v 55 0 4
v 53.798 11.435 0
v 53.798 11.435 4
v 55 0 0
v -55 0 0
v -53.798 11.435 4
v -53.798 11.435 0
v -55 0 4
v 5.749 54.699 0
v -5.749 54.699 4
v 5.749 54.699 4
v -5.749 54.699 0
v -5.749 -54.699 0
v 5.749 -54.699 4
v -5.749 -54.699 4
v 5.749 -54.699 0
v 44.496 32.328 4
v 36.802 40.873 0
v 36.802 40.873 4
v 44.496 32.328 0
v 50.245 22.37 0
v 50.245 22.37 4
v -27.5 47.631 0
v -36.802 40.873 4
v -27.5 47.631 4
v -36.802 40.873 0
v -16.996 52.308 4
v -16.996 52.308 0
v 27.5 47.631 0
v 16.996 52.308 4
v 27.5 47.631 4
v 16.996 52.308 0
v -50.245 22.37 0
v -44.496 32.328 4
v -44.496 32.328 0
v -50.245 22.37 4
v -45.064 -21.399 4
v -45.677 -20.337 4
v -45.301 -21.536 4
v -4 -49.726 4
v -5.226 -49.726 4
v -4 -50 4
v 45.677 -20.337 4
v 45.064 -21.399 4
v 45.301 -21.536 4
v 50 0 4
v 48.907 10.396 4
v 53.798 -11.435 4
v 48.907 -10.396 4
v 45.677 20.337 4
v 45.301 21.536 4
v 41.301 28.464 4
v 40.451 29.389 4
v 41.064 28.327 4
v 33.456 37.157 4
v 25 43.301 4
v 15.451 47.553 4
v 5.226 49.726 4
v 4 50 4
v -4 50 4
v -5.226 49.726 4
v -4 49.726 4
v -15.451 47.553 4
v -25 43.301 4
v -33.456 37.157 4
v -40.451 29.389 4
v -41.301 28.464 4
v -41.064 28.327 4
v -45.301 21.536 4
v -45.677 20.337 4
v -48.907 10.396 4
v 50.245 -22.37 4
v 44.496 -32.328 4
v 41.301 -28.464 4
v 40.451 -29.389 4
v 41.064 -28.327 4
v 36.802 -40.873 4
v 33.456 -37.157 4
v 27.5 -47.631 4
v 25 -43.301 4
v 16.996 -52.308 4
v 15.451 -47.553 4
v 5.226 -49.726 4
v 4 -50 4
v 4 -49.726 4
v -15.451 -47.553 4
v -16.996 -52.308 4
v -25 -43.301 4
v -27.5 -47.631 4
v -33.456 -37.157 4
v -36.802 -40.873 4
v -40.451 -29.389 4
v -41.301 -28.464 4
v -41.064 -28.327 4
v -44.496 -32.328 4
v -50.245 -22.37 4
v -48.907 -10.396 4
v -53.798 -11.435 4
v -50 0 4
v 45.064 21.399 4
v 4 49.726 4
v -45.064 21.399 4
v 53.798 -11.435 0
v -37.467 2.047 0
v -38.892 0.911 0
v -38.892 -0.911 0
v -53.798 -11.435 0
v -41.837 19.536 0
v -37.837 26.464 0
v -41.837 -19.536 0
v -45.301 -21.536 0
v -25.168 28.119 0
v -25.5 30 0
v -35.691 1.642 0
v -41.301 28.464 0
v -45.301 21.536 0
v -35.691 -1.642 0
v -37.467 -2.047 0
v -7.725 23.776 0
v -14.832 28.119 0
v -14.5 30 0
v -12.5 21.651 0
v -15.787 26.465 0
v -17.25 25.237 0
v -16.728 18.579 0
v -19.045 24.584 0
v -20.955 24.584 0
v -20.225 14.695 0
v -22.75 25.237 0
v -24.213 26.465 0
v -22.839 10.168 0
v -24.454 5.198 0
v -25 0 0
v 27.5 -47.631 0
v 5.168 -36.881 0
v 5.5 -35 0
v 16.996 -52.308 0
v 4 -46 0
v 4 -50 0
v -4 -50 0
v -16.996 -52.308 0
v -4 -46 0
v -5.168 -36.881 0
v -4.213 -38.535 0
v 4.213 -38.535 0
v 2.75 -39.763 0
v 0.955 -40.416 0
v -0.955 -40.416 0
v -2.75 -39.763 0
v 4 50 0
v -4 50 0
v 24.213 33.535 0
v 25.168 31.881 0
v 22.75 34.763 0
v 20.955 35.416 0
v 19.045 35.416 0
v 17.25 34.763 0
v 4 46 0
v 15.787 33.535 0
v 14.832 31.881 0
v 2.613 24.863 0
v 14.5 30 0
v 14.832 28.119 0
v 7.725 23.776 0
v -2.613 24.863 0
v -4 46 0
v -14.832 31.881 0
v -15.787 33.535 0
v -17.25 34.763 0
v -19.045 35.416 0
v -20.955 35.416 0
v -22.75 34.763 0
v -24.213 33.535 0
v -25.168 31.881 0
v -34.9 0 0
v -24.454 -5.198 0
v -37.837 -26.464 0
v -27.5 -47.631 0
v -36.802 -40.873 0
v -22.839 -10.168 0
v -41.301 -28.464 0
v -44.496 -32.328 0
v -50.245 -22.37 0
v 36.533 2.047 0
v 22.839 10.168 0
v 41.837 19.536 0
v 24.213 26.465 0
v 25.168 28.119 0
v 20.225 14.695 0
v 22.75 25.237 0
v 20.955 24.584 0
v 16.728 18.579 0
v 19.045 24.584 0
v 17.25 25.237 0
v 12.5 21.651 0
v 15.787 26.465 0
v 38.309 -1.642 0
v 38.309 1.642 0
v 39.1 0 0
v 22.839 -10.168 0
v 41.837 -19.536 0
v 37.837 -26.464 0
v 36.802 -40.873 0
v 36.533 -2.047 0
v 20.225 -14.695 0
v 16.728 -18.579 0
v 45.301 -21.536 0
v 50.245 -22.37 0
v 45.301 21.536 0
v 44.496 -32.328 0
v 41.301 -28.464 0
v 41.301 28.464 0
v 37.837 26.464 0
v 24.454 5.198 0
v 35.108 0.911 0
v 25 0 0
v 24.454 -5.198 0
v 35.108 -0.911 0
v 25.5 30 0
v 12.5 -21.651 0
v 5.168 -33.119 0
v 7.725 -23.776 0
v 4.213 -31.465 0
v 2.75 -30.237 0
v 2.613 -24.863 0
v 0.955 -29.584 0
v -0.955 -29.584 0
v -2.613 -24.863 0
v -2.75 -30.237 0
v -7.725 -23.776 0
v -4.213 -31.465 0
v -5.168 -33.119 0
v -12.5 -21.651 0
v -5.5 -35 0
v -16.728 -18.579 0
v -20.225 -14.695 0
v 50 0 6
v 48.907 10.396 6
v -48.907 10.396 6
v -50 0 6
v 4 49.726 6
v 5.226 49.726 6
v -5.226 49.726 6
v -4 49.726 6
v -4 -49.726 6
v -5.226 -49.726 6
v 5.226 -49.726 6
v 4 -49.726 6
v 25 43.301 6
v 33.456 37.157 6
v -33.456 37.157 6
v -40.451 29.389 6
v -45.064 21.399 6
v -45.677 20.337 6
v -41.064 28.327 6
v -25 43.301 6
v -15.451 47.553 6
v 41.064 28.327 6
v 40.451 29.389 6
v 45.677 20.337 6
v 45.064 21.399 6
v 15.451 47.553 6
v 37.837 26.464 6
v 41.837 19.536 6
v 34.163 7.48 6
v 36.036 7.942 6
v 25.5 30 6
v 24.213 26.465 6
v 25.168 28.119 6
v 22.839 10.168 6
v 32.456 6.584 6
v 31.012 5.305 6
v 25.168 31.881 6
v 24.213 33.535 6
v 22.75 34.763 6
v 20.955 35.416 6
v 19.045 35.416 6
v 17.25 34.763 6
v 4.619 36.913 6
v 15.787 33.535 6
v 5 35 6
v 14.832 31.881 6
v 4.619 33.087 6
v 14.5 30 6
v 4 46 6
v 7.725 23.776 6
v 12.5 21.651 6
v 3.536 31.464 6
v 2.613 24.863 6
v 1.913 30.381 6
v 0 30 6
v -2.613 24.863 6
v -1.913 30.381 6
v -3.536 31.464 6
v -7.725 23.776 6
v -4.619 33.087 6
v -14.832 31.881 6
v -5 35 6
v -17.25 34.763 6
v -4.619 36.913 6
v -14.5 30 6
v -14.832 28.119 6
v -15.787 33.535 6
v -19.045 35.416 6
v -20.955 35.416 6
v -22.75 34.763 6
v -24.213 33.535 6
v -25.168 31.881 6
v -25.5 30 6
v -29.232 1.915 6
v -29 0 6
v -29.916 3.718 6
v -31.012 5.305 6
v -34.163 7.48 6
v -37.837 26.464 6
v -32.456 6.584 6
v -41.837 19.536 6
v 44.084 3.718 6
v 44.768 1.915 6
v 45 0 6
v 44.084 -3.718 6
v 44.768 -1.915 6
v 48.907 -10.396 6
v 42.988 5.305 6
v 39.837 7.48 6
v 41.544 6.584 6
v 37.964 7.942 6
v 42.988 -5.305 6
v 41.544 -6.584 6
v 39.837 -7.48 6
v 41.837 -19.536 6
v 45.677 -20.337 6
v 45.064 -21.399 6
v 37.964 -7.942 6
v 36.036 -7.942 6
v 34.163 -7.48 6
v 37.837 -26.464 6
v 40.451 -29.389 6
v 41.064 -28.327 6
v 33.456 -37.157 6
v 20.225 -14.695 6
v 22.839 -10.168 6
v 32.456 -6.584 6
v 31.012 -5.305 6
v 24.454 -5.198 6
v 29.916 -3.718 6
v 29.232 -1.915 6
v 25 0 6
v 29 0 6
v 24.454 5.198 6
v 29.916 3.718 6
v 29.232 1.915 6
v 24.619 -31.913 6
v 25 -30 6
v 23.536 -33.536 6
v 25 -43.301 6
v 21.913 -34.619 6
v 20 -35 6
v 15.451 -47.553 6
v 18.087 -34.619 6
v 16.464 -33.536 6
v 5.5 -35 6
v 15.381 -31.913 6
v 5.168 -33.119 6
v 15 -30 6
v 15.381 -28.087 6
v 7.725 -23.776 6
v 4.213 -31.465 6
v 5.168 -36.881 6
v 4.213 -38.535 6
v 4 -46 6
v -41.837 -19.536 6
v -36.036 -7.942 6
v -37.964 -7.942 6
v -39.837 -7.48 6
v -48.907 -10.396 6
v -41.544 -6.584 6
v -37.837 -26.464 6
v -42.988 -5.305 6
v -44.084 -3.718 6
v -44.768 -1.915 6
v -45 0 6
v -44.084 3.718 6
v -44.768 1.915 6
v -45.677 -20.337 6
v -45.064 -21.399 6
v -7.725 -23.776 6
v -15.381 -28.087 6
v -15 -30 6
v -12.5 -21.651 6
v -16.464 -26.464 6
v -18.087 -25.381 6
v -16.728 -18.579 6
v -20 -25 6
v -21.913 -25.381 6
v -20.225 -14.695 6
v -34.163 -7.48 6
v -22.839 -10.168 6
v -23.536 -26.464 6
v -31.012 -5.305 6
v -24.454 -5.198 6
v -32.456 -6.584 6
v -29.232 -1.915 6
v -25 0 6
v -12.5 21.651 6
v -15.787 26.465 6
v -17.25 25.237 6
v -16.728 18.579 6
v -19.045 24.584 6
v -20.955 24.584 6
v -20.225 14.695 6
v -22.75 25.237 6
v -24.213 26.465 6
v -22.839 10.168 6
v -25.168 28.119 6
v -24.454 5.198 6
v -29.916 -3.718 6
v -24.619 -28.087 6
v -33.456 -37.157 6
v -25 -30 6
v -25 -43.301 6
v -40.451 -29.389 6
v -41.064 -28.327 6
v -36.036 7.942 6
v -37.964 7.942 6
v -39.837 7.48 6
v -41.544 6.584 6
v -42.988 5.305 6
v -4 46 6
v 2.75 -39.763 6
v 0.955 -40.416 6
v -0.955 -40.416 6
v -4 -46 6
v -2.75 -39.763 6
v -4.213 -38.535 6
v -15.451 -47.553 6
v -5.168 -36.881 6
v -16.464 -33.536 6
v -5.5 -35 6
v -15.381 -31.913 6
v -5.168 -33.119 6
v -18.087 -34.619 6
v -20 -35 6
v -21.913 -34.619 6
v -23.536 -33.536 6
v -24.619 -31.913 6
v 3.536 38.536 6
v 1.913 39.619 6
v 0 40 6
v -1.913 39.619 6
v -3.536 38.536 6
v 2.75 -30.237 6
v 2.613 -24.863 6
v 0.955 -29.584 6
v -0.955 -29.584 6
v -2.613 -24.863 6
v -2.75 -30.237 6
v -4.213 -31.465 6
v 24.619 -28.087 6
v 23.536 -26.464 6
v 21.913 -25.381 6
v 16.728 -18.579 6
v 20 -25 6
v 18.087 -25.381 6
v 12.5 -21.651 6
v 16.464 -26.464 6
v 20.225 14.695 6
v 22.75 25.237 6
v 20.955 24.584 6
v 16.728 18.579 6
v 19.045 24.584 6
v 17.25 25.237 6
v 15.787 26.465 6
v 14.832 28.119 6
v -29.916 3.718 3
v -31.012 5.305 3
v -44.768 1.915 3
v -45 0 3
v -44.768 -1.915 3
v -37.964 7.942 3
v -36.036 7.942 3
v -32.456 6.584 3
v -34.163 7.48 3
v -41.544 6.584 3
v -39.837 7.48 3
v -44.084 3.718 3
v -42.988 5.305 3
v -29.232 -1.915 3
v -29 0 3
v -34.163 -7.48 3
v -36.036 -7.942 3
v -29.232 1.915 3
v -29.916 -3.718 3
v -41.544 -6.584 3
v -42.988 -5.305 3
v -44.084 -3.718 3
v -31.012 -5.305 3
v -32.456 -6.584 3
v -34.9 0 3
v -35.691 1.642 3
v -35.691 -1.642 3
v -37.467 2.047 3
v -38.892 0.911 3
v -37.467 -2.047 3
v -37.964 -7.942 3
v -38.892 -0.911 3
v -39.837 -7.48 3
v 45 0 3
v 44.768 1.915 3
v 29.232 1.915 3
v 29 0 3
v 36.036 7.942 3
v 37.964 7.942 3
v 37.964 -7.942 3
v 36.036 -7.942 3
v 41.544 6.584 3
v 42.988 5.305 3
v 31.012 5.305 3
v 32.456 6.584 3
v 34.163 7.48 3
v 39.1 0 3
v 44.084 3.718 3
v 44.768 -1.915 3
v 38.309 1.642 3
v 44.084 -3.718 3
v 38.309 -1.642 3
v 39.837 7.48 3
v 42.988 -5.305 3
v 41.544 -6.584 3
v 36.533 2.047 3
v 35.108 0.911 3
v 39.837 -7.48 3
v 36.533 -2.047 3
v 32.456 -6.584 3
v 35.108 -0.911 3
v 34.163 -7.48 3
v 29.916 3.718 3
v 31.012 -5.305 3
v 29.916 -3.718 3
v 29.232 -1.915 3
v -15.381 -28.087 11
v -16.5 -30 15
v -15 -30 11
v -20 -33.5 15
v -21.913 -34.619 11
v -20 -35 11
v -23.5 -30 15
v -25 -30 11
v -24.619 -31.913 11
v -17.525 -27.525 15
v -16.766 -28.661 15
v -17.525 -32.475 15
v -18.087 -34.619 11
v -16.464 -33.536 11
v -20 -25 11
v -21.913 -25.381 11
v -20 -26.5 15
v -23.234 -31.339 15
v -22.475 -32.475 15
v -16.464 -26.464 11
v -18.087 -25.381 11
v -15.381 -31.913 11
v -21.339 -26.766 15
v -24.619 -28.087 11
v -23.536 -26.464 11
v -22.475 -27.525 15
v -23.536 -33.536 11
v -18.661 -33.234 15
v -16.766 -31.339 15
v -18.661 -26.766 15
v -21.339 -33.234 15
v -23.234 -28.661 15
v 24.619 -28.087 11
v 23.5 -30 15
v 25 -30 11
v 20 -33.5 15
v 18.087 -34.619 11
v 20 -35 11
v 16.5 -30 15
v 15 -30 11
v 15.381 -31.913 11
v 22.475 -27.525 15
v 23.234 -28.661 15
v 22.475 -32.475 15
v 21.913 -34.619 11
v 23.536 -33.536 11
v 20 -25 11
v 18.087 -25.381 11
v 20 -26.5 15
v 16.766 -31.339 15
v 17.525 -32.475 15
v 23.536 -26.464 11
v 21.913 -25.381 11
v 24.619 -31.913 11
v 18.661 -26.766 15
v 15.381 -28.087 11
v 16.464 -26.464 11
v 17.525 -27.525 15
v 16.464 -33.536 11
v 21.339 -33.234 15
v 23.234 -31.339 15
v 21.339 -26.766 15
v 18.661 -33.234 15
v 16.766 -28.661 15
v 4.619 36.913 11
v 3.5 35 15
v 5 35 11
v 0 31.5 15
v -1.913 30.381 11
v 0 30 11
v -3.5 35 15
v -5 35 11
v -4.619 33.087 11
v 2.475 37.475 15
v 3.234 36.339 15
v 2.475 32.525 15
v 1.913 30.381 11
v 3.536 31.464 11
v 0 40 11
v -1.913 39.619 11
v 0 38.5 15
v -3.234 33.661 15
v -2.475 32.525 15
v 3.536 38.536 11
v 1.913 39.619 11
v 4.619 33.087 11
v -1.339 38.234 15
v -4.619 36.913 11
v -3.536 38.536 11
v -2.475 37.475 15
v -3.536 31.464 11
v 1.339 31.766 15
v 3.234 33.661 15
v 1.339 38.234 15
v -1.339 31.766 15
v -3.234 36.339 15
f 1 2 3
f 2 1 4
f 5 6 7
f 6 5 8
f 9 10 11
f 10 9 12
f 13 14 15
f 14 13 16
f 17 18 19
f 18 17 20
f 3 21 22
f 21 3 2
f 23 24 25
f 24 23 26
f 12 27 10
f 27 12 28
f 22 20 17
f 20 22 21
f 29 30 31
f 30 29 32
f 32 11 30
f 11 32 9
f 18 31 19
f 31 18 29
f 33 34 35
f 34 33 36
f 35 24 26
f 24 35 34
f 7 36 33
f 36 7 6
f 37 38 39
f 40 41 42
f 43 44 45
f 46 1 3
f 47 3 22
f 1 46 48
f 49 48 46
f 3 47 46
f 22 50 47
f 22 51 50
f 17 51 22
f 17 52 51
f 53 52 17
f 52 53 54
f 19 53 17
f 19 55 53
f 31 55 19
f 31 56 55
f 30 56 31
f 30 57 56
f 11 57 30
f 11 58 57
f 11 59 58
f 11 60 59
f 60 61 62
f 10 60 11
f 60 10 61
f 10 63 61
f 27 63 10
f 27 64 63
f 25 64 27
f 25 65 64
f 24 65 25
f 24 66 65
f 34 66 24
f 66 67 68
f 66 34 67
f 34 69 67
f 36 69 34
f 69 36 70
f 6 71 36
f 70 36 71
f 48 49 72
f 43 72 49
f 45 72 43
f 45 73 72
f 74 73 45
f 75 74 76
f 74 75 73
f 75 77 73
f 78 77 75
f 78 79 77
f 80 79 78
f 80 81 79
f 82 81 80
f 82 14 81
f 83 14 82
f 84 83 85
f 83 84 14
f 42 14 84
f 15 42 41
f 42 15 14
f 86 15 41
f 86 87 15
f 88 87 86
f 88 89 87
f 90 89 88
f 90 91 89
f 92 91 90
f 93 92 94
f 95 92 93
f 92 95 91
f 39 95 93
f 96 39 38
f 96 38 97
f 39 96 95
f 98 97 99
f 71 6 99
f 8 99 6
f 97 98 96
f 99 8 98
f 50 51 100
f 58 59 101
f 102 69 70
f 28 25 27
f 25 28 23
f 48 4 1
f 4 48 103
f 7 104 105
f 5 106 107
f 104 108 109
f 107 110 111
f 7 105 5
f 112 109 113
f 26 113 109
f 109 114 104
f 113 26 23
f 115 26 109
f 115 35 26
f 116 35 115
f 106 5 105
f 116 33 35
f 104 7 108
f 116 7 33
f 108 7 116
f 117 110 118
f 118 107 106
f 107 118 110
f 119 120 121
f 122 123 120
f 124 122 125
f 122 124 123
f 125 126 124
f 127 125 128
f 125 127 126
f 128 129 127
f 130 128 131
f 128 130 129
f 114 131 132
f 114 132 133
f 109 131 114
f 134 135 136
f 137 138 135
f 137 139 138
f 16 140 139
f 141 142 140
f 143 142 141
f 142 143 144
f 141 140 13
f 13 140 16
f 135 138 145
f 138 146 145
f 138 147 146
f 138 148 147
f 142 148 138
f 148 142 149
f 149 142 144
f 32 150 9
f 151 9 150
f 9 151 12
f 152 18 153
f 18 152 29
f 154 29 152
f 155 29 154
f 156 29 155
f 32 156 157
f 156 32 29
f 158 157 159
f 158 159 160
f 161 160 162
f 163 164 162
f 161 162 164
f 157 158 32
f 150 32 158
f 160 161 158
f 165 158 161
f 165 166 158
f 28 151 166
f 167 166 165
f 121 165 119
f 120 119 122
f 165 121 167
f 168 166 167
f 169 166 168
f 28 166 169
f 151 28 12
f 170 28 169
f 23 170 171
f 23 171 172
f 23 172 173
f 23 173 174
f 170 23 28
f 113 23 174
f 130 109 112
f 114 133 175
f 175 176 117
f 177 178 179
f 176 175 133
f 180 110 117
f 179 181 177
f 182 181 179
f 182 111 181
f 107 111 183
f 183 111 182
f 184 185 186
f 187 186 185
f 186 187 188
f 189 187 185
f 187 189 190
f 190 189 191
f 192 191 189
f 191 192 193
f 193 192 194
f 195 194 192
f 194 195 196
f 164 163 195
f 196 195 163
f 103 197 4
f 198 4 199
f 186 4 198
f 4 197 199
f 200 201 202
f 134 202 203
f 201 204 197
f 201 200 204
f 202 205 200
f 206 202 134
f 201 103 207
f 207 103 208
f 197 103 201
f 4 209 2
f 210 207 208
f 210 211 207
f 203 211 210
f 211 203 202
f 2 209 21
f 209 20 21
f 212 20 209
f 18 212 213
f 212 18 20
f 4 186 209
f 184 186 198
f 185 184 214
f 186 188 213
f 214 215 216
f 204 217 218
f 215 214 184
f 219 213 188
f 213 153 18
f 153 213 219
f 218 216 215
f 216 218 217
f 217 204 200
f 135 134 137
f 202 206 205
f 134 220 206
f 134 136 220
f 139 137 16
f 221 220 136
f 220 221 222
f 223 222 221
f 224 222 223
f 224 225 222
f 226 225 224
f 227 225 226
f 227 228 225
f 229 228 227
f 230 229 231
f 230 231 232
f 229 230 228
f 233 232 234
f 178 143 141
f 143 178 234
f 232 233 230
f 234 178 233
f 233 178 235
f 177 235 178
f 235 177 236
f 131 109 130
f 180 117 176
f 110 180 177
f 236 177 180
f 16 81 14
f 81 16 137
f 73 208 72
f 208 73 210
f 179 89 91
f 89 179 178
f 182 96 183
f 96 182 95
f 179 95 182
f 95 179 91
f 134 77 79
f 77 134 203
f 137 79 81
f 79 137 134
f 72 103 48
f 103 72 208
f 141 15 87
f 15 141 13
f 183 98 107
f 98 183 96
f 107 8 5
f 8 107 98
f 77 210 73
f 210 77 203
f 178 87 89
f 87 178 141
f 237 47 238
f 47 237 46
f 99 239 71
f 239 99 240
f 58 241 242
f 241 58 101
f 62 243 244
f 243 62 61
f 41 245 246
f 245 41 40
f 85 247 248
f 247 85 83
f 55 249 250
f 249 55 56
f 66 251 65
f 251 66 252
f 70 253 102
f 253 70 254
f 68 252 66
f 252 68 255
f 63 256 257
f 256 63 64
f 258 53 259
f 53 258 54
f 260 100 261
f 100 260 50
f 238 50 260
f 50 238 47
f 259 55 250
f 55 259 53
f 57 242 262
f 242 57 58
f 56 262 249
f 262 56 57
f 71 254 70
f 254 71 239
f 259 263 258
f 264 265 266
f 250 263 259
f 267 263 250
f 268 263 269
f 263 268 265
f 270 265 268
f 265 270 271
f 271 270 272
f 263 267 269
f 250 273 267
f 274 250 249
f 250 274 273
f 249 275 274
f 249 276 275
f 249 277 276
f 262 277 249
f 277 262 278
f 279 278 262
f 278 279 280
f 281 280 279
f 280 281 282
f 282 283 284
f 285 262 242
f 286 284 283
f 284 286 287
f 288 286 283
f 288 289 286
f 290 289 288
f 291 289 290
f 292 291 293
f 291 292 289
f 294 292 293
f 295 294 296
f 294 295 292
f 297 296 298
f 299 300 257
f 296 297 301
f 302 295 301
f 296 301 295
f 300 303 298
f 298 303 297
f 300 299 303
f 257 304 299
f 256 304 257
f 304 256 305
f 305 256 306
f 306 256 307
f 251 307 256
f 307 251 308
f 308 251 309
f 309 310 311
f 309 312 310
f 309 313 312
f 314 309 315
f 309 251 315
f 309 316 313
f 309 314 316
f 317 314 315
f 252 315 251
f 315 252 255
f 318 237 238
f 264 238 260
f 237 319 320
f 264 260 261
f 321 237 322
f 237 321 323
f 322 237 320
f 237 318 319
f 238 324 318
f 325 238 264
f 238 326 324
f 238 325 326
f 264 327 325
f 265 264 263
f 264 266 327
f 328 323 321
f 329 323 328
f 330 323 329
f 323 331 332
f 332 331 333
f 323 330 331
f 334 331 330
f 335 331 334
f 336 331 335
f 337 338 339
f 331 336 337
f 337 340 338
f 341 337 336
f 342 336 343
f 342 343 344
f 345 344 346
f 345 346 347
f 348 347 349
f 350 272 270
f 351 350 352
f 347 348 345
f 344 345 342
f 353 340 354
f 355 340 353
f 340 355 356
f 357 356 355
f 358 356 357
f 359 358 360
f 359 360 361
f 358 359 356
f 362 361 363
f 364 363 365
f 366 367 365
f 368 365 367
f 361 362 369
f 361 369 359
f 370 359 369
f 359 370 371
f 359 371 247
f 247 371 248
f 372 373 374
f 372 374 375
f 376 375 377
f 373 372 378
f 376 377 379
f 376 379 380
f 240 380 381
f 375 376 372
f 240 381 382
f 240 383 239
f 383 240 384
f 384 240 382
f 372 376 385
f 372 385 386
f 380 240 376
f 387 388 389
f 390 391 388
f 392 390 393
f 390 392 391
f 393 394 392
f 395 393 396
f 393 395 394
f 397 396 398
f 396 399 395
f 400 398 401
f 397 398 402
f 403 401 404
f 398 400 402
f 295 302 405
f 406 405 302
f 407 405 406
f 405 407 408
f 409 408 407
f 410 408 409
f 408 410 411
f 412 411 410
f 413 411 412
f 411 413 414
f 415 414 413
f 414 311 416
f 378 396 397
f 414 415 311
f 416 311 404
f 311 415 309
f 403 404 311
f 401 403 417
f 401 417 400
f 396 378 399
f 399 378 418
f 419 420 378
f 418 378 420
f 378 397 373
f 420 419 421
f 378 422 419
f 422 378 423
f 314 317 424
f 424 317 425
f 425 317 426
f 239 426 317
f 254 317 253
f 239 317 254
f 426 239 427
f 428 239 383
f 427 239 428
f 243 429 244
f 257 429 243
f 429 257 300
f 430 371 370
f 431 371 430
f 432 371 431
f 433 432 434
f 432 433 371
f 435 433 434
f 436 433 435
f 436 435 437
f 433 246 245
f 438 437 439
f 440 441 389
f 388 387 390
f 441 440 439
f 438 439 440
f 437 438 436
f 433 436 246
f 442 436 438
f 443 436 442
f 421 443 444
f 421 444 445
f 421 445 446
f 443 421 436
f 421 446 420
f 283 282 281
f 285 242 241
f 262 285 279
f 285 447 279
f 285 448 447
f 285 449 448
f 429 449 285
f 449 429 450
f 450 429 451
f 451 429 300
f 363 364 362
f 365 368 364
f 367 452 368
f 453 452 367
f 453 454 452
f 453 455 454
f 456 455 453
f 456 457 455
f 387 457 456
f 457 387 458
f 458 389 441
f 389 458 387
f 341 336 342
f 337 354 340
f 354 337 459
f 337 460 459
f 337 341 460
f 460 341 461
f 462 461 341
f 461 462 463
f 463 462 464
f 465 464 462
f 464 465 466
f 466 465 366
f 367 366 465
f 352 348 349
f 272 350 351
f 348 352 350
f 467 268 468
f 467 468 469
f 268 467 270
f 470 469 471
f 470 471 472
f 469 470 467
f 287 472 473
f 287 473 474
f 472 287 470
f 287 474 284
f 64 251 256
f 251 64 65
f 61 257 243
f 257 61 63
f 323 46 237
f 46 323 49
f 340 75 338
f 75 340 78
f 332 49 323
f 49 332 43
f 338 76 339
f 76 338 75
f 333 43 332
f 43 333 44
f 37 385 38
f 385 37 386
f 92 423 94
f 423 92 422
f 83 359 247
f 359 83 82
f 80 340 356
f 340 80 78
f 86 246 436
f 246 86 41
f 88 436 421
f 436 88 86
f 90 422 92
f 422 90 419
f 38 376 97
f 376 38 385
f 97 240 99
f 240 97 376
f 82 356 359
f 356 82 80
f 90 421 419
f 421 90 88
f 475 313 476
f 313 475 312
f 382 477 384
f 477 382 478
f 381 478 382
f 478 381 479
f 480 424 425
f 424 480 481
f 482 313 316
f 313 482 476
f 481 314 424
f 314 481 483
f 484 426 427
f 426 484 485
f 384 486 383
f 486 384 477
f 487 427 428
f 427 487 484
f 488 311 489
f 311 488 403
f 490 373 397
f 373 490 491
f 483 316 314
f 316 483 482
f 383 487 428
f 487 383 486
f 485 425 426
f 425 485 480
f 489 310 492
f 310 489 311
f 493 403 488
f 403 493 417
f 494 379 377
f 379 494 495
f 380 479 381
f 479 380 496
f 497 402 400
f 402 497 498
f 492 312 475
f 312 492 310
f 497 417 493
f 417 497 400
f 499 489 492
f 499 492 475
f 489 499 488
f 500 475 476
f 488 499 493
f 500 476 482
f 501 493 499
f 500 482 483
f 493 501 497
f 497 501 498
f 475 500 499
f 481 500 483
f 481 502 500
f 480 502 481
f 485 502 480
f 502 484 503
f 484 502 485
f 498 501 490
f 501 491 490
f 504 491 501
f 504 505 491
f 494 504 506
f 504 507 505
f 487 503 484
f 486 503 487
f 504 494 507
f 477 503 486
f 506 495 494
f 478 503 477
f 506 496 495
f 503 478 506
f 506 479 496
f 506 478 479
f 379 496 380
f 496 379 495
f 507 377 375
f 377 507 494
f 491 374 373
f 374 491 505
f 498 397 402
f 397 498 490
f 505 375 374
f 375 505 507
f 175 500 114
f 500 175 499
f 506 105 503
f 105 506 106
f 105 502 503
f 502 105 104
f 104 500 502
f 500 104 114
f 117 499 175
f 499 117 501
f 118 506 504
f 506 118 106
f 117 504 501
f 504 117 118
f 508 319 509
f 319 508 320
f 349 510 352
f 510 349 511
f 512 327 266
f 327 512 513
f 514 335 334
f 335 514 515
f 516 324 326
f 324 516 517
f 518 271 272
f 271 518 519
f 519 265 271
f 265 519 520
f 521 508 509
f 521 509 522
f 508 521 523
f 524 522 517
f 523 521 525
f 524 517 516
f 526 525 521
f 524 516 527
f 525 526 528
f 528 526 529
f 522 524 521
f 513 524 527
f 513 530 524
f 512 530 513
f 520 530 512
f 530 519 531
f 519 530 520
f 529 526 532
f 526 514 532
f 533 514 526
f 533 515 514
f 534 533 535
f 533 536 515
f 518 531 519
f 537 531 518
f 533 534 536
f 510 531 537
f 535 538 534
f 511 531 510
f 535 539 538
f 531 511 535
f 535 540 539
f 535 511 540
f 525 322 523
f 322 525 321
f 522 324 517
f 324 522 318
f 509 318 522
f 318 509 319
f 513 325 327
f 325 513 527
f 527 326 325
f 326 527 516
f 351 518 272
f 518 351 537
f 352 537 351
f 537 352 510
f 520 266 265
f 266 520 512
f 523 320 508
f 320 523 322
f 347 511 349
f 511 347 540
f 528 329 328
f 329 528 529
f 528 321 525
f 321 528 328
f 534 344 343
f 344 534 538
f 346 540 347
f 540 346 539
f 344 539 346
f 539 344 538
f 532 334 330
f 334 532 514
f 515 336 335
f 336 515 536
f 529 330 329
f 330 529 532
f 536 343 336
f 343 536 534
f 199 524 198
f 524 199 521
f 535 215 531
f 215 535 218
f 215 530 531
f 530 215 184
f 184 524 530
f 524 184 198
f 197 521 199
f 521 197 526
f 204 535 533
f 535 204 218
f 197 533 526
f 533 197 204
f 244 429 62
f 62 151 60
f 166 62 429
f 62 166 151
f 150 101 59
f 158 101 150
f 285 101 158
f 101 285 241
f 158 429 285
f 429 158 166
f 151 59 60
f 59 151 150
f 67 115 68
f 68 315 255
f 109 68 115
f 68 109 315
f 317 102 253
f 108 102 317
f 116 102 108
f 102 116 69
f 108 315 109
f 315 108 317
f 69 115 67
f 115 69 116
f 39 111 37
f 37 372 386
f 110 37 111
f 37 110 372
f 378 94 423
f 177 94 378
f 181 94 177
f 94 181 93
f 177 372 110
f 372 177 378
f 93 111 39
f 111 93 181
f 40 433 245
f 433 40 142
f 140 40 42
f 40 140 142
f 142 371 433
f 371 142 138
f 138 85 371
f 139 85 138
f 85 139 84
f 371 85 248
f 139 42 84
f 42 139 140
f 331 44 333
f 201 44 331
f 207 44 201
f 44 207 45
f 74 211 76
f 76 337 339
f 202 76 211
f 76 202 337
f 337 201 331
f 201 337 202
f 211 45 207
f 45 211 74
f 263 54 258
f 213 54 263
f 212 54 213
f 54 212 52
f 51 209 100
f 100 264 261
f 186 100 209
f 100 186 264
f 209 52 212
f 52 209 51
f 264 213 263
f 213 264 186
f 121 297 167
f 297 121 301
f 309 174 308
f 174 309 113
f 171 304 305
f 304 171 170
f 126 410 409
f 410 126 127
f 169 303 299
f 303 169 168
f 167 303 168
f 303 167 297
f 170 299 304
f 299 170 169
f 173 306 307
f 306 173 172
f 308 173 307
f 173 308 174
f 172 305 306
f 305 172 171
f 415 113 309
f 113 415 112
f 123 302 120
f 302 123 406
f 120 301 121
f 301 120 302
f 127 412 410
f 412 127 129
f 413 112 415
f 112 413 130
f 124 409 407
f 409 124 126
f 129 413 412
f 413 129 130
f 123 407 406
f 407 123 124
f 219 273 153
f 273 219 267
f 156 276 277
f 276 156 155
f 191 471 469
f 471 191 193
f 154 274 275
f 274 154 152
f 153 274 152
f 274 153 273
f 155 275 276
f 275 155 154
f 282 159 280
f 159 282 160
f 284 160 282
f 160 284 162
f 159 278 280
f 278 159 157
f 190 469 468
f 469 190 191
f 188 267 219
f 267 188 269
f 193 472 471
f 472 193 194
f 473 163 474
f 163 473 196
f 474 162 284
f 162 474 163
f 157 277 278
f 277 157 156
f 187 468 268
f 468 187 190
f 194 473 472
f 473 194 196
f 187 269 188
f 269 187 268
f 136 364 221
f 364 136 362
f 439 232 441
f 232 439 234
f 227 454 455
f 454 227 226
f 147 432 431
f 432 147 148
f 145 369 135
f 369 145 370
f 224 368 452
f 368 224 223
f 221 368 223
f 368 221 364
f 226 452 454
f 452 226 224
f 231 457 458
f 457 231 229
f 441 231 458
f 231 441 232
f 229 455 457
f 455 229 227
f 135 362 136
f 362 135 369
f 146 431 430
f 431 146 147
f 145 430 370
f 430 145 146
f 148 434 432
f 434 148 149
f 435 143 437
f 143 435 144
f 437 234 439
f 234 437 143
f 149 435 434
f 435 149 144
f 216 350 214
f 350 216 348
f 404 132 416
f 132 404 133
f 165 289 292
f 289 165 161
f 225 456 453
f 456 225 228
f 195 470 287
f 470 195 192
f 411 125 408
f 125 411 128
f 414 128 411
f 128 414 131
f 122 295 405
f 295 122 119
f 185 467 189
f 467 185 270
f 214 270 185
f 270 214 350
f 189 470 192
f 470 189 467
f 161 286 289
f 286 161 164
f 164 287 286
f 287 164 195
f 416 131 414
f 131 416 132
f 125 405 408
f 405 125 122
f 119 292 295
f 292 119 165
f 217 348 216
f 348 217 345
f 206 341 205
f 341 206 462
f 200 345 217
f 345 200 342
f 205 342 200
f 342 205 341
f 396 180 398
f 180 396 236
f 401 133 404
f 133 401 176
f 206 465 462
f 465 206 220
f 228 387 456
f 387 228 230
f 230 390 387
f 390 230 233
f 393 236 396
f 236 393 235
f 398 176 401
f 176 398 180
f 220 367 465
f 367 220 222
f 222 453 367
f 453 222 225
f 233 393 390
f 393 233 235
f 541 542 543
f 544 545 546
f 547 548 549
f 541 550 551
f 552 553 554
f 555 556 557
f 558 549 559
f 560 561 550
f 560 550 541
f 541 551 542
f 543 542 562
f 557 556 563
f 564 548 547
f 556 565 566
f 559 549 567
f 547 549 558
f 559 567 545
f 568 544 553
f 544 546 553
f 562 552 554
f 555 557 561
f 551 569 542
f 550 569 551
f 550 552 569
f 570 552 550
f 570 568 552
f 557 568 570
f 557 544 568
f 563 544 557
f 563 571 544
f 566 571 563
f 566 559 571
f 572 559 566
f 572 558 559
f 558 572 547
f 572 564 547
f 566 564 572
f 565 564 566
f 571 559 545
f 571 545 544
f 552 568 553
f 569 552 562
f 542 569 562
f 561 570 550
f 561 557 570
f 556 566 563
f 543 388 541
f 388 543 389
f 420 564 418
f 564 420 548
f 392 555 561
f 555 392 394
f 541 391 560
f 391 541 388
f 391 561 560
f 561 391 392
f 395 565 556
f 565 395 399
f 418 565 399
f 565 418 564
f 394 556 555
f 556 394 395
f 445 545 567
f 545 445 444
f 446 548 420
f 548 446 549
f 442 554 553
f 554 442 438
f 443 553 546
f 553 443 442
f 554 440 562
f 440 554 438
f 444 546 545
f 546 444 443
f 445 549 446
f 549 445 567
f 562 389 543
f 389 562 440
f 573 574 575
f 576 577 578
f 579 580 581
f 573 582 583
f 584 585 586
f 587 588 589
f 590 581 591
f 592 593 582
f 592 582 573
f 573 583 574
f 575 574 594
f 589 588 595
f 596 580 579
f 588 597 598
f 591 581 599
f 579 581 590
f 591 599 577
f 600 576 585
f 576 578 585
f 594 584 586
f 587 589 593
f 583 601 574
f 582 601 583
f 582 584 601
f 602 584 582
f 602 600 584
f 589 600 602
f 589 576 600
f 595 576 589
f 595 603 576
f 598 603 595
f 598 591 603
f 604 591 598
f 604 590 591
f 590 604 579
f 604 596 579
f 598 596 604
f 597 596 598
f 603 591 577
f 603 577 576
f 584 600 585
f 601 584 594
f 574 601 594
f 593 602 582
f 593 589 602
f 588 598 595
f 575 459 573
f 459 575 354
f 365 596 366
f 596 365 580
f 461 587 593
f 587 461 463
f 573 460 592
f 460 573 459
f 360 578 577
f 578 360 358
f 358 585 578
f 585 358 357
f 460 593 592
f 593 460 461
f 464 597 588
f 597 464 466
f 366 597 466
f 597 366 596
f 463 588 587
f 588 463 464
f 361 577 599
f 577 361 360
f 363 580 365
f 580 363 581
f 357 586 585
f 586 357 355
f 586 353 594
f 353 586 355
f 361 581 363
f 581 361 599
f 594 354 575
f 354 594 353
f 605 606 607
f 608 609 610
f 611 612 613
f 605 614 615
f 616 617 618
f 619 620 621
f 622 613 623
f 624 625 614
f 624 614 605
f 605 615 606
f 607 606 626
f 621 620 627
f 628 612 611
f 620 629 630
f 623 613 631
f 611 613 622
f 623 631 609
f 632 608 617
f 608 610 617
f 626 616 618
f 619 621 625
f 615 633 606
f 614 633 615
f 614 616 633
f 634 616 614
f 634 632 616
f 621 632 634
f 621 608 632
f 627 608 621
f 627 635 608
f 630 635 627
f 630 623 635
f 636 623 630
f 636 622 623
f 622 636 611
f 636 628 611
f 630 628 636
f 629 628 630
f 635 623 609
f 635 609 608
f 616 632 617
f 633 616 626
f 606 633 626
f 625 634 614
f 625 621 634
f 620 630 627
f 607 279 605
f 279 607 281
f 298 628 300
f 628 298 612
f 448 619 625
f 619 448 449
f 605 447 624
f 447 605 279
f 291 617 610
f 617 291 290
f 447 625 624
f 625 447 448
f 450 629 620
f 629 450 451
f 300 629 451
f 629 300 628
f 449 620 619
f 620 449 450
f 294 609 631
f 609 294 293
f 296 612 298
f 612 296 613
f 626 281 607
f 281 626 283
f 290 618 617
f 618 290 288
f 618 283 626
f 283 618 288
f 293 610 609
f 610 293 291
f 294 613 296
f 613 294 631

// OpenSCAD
$outset_x  = 20;
$outset_y  = 30;
$outset_y2 = 35;
$outset_mag= 37;

$outer_r = 55;

union() {

    difference() {
        union() {
            cylinder(h=4,r=55,center=false);
            cylinder(h=6,r=$outer_r - 5,center=false);
        }
        union() {
            translate([-$outset_x,$outset_y,0]) {
                cylinder(h=25,r=5.5,center=true); // Loch
            }
            translate([$outset_x,$outset_y,0]) {
                cylinder(h=25,r=5.5,center=true); // Loch
            }
            translate([0,-$outset_y2,0]) {
                cylinder(h=25,r=5.5,center=true); // Loch
            }

            translate([-$outset_mag,0,3]) {
                cylinder(h=10,r=16/2,center=false); // Magnet
                cylinder(h=25,r=2.1,center=true); // M4 Loch
            }
            translate([$outset_mag,0,3]) {
                cylinder(h=10,r=16/2,center=false); // Magnet
                cylinder(h=25,r=2.1,center=true); // M4 Loch
            }
            cylinder(h=25,r=25,center=true); // Loch, mitte
            
            for(rot =[0:5])
            {
                rotate([0,0,rot*60])
                {
                    translate([0,$outer_r-7,0]) {
                        cube([8,4,25],center=true);
                    }
                }
            }
        }
    }

    translate([-$outset_x,-$outset_y,0]) {
        translate([0,0,11]) {
            cylinder(h=4,r1=5,r2=3.5,center=false);
        }
        cylinder(h=11,r=5,center=false);
    }
    translate([$outset_x,-$outset_y,0]) {
        translate([0,0,11]) {
            cylinder(h=4,r1=5,r2=3.5,center=false);
        }
        cylinder(h=11,r=5,center=false);
    }
    translate([0,$outset_y2,0]) {
        translate([0,0,11]) {
            cylinder(h=4,r1=5,r2=3.5,center=false);
        }
        cylinder(h=11,r=5,center=false);
    }

}
